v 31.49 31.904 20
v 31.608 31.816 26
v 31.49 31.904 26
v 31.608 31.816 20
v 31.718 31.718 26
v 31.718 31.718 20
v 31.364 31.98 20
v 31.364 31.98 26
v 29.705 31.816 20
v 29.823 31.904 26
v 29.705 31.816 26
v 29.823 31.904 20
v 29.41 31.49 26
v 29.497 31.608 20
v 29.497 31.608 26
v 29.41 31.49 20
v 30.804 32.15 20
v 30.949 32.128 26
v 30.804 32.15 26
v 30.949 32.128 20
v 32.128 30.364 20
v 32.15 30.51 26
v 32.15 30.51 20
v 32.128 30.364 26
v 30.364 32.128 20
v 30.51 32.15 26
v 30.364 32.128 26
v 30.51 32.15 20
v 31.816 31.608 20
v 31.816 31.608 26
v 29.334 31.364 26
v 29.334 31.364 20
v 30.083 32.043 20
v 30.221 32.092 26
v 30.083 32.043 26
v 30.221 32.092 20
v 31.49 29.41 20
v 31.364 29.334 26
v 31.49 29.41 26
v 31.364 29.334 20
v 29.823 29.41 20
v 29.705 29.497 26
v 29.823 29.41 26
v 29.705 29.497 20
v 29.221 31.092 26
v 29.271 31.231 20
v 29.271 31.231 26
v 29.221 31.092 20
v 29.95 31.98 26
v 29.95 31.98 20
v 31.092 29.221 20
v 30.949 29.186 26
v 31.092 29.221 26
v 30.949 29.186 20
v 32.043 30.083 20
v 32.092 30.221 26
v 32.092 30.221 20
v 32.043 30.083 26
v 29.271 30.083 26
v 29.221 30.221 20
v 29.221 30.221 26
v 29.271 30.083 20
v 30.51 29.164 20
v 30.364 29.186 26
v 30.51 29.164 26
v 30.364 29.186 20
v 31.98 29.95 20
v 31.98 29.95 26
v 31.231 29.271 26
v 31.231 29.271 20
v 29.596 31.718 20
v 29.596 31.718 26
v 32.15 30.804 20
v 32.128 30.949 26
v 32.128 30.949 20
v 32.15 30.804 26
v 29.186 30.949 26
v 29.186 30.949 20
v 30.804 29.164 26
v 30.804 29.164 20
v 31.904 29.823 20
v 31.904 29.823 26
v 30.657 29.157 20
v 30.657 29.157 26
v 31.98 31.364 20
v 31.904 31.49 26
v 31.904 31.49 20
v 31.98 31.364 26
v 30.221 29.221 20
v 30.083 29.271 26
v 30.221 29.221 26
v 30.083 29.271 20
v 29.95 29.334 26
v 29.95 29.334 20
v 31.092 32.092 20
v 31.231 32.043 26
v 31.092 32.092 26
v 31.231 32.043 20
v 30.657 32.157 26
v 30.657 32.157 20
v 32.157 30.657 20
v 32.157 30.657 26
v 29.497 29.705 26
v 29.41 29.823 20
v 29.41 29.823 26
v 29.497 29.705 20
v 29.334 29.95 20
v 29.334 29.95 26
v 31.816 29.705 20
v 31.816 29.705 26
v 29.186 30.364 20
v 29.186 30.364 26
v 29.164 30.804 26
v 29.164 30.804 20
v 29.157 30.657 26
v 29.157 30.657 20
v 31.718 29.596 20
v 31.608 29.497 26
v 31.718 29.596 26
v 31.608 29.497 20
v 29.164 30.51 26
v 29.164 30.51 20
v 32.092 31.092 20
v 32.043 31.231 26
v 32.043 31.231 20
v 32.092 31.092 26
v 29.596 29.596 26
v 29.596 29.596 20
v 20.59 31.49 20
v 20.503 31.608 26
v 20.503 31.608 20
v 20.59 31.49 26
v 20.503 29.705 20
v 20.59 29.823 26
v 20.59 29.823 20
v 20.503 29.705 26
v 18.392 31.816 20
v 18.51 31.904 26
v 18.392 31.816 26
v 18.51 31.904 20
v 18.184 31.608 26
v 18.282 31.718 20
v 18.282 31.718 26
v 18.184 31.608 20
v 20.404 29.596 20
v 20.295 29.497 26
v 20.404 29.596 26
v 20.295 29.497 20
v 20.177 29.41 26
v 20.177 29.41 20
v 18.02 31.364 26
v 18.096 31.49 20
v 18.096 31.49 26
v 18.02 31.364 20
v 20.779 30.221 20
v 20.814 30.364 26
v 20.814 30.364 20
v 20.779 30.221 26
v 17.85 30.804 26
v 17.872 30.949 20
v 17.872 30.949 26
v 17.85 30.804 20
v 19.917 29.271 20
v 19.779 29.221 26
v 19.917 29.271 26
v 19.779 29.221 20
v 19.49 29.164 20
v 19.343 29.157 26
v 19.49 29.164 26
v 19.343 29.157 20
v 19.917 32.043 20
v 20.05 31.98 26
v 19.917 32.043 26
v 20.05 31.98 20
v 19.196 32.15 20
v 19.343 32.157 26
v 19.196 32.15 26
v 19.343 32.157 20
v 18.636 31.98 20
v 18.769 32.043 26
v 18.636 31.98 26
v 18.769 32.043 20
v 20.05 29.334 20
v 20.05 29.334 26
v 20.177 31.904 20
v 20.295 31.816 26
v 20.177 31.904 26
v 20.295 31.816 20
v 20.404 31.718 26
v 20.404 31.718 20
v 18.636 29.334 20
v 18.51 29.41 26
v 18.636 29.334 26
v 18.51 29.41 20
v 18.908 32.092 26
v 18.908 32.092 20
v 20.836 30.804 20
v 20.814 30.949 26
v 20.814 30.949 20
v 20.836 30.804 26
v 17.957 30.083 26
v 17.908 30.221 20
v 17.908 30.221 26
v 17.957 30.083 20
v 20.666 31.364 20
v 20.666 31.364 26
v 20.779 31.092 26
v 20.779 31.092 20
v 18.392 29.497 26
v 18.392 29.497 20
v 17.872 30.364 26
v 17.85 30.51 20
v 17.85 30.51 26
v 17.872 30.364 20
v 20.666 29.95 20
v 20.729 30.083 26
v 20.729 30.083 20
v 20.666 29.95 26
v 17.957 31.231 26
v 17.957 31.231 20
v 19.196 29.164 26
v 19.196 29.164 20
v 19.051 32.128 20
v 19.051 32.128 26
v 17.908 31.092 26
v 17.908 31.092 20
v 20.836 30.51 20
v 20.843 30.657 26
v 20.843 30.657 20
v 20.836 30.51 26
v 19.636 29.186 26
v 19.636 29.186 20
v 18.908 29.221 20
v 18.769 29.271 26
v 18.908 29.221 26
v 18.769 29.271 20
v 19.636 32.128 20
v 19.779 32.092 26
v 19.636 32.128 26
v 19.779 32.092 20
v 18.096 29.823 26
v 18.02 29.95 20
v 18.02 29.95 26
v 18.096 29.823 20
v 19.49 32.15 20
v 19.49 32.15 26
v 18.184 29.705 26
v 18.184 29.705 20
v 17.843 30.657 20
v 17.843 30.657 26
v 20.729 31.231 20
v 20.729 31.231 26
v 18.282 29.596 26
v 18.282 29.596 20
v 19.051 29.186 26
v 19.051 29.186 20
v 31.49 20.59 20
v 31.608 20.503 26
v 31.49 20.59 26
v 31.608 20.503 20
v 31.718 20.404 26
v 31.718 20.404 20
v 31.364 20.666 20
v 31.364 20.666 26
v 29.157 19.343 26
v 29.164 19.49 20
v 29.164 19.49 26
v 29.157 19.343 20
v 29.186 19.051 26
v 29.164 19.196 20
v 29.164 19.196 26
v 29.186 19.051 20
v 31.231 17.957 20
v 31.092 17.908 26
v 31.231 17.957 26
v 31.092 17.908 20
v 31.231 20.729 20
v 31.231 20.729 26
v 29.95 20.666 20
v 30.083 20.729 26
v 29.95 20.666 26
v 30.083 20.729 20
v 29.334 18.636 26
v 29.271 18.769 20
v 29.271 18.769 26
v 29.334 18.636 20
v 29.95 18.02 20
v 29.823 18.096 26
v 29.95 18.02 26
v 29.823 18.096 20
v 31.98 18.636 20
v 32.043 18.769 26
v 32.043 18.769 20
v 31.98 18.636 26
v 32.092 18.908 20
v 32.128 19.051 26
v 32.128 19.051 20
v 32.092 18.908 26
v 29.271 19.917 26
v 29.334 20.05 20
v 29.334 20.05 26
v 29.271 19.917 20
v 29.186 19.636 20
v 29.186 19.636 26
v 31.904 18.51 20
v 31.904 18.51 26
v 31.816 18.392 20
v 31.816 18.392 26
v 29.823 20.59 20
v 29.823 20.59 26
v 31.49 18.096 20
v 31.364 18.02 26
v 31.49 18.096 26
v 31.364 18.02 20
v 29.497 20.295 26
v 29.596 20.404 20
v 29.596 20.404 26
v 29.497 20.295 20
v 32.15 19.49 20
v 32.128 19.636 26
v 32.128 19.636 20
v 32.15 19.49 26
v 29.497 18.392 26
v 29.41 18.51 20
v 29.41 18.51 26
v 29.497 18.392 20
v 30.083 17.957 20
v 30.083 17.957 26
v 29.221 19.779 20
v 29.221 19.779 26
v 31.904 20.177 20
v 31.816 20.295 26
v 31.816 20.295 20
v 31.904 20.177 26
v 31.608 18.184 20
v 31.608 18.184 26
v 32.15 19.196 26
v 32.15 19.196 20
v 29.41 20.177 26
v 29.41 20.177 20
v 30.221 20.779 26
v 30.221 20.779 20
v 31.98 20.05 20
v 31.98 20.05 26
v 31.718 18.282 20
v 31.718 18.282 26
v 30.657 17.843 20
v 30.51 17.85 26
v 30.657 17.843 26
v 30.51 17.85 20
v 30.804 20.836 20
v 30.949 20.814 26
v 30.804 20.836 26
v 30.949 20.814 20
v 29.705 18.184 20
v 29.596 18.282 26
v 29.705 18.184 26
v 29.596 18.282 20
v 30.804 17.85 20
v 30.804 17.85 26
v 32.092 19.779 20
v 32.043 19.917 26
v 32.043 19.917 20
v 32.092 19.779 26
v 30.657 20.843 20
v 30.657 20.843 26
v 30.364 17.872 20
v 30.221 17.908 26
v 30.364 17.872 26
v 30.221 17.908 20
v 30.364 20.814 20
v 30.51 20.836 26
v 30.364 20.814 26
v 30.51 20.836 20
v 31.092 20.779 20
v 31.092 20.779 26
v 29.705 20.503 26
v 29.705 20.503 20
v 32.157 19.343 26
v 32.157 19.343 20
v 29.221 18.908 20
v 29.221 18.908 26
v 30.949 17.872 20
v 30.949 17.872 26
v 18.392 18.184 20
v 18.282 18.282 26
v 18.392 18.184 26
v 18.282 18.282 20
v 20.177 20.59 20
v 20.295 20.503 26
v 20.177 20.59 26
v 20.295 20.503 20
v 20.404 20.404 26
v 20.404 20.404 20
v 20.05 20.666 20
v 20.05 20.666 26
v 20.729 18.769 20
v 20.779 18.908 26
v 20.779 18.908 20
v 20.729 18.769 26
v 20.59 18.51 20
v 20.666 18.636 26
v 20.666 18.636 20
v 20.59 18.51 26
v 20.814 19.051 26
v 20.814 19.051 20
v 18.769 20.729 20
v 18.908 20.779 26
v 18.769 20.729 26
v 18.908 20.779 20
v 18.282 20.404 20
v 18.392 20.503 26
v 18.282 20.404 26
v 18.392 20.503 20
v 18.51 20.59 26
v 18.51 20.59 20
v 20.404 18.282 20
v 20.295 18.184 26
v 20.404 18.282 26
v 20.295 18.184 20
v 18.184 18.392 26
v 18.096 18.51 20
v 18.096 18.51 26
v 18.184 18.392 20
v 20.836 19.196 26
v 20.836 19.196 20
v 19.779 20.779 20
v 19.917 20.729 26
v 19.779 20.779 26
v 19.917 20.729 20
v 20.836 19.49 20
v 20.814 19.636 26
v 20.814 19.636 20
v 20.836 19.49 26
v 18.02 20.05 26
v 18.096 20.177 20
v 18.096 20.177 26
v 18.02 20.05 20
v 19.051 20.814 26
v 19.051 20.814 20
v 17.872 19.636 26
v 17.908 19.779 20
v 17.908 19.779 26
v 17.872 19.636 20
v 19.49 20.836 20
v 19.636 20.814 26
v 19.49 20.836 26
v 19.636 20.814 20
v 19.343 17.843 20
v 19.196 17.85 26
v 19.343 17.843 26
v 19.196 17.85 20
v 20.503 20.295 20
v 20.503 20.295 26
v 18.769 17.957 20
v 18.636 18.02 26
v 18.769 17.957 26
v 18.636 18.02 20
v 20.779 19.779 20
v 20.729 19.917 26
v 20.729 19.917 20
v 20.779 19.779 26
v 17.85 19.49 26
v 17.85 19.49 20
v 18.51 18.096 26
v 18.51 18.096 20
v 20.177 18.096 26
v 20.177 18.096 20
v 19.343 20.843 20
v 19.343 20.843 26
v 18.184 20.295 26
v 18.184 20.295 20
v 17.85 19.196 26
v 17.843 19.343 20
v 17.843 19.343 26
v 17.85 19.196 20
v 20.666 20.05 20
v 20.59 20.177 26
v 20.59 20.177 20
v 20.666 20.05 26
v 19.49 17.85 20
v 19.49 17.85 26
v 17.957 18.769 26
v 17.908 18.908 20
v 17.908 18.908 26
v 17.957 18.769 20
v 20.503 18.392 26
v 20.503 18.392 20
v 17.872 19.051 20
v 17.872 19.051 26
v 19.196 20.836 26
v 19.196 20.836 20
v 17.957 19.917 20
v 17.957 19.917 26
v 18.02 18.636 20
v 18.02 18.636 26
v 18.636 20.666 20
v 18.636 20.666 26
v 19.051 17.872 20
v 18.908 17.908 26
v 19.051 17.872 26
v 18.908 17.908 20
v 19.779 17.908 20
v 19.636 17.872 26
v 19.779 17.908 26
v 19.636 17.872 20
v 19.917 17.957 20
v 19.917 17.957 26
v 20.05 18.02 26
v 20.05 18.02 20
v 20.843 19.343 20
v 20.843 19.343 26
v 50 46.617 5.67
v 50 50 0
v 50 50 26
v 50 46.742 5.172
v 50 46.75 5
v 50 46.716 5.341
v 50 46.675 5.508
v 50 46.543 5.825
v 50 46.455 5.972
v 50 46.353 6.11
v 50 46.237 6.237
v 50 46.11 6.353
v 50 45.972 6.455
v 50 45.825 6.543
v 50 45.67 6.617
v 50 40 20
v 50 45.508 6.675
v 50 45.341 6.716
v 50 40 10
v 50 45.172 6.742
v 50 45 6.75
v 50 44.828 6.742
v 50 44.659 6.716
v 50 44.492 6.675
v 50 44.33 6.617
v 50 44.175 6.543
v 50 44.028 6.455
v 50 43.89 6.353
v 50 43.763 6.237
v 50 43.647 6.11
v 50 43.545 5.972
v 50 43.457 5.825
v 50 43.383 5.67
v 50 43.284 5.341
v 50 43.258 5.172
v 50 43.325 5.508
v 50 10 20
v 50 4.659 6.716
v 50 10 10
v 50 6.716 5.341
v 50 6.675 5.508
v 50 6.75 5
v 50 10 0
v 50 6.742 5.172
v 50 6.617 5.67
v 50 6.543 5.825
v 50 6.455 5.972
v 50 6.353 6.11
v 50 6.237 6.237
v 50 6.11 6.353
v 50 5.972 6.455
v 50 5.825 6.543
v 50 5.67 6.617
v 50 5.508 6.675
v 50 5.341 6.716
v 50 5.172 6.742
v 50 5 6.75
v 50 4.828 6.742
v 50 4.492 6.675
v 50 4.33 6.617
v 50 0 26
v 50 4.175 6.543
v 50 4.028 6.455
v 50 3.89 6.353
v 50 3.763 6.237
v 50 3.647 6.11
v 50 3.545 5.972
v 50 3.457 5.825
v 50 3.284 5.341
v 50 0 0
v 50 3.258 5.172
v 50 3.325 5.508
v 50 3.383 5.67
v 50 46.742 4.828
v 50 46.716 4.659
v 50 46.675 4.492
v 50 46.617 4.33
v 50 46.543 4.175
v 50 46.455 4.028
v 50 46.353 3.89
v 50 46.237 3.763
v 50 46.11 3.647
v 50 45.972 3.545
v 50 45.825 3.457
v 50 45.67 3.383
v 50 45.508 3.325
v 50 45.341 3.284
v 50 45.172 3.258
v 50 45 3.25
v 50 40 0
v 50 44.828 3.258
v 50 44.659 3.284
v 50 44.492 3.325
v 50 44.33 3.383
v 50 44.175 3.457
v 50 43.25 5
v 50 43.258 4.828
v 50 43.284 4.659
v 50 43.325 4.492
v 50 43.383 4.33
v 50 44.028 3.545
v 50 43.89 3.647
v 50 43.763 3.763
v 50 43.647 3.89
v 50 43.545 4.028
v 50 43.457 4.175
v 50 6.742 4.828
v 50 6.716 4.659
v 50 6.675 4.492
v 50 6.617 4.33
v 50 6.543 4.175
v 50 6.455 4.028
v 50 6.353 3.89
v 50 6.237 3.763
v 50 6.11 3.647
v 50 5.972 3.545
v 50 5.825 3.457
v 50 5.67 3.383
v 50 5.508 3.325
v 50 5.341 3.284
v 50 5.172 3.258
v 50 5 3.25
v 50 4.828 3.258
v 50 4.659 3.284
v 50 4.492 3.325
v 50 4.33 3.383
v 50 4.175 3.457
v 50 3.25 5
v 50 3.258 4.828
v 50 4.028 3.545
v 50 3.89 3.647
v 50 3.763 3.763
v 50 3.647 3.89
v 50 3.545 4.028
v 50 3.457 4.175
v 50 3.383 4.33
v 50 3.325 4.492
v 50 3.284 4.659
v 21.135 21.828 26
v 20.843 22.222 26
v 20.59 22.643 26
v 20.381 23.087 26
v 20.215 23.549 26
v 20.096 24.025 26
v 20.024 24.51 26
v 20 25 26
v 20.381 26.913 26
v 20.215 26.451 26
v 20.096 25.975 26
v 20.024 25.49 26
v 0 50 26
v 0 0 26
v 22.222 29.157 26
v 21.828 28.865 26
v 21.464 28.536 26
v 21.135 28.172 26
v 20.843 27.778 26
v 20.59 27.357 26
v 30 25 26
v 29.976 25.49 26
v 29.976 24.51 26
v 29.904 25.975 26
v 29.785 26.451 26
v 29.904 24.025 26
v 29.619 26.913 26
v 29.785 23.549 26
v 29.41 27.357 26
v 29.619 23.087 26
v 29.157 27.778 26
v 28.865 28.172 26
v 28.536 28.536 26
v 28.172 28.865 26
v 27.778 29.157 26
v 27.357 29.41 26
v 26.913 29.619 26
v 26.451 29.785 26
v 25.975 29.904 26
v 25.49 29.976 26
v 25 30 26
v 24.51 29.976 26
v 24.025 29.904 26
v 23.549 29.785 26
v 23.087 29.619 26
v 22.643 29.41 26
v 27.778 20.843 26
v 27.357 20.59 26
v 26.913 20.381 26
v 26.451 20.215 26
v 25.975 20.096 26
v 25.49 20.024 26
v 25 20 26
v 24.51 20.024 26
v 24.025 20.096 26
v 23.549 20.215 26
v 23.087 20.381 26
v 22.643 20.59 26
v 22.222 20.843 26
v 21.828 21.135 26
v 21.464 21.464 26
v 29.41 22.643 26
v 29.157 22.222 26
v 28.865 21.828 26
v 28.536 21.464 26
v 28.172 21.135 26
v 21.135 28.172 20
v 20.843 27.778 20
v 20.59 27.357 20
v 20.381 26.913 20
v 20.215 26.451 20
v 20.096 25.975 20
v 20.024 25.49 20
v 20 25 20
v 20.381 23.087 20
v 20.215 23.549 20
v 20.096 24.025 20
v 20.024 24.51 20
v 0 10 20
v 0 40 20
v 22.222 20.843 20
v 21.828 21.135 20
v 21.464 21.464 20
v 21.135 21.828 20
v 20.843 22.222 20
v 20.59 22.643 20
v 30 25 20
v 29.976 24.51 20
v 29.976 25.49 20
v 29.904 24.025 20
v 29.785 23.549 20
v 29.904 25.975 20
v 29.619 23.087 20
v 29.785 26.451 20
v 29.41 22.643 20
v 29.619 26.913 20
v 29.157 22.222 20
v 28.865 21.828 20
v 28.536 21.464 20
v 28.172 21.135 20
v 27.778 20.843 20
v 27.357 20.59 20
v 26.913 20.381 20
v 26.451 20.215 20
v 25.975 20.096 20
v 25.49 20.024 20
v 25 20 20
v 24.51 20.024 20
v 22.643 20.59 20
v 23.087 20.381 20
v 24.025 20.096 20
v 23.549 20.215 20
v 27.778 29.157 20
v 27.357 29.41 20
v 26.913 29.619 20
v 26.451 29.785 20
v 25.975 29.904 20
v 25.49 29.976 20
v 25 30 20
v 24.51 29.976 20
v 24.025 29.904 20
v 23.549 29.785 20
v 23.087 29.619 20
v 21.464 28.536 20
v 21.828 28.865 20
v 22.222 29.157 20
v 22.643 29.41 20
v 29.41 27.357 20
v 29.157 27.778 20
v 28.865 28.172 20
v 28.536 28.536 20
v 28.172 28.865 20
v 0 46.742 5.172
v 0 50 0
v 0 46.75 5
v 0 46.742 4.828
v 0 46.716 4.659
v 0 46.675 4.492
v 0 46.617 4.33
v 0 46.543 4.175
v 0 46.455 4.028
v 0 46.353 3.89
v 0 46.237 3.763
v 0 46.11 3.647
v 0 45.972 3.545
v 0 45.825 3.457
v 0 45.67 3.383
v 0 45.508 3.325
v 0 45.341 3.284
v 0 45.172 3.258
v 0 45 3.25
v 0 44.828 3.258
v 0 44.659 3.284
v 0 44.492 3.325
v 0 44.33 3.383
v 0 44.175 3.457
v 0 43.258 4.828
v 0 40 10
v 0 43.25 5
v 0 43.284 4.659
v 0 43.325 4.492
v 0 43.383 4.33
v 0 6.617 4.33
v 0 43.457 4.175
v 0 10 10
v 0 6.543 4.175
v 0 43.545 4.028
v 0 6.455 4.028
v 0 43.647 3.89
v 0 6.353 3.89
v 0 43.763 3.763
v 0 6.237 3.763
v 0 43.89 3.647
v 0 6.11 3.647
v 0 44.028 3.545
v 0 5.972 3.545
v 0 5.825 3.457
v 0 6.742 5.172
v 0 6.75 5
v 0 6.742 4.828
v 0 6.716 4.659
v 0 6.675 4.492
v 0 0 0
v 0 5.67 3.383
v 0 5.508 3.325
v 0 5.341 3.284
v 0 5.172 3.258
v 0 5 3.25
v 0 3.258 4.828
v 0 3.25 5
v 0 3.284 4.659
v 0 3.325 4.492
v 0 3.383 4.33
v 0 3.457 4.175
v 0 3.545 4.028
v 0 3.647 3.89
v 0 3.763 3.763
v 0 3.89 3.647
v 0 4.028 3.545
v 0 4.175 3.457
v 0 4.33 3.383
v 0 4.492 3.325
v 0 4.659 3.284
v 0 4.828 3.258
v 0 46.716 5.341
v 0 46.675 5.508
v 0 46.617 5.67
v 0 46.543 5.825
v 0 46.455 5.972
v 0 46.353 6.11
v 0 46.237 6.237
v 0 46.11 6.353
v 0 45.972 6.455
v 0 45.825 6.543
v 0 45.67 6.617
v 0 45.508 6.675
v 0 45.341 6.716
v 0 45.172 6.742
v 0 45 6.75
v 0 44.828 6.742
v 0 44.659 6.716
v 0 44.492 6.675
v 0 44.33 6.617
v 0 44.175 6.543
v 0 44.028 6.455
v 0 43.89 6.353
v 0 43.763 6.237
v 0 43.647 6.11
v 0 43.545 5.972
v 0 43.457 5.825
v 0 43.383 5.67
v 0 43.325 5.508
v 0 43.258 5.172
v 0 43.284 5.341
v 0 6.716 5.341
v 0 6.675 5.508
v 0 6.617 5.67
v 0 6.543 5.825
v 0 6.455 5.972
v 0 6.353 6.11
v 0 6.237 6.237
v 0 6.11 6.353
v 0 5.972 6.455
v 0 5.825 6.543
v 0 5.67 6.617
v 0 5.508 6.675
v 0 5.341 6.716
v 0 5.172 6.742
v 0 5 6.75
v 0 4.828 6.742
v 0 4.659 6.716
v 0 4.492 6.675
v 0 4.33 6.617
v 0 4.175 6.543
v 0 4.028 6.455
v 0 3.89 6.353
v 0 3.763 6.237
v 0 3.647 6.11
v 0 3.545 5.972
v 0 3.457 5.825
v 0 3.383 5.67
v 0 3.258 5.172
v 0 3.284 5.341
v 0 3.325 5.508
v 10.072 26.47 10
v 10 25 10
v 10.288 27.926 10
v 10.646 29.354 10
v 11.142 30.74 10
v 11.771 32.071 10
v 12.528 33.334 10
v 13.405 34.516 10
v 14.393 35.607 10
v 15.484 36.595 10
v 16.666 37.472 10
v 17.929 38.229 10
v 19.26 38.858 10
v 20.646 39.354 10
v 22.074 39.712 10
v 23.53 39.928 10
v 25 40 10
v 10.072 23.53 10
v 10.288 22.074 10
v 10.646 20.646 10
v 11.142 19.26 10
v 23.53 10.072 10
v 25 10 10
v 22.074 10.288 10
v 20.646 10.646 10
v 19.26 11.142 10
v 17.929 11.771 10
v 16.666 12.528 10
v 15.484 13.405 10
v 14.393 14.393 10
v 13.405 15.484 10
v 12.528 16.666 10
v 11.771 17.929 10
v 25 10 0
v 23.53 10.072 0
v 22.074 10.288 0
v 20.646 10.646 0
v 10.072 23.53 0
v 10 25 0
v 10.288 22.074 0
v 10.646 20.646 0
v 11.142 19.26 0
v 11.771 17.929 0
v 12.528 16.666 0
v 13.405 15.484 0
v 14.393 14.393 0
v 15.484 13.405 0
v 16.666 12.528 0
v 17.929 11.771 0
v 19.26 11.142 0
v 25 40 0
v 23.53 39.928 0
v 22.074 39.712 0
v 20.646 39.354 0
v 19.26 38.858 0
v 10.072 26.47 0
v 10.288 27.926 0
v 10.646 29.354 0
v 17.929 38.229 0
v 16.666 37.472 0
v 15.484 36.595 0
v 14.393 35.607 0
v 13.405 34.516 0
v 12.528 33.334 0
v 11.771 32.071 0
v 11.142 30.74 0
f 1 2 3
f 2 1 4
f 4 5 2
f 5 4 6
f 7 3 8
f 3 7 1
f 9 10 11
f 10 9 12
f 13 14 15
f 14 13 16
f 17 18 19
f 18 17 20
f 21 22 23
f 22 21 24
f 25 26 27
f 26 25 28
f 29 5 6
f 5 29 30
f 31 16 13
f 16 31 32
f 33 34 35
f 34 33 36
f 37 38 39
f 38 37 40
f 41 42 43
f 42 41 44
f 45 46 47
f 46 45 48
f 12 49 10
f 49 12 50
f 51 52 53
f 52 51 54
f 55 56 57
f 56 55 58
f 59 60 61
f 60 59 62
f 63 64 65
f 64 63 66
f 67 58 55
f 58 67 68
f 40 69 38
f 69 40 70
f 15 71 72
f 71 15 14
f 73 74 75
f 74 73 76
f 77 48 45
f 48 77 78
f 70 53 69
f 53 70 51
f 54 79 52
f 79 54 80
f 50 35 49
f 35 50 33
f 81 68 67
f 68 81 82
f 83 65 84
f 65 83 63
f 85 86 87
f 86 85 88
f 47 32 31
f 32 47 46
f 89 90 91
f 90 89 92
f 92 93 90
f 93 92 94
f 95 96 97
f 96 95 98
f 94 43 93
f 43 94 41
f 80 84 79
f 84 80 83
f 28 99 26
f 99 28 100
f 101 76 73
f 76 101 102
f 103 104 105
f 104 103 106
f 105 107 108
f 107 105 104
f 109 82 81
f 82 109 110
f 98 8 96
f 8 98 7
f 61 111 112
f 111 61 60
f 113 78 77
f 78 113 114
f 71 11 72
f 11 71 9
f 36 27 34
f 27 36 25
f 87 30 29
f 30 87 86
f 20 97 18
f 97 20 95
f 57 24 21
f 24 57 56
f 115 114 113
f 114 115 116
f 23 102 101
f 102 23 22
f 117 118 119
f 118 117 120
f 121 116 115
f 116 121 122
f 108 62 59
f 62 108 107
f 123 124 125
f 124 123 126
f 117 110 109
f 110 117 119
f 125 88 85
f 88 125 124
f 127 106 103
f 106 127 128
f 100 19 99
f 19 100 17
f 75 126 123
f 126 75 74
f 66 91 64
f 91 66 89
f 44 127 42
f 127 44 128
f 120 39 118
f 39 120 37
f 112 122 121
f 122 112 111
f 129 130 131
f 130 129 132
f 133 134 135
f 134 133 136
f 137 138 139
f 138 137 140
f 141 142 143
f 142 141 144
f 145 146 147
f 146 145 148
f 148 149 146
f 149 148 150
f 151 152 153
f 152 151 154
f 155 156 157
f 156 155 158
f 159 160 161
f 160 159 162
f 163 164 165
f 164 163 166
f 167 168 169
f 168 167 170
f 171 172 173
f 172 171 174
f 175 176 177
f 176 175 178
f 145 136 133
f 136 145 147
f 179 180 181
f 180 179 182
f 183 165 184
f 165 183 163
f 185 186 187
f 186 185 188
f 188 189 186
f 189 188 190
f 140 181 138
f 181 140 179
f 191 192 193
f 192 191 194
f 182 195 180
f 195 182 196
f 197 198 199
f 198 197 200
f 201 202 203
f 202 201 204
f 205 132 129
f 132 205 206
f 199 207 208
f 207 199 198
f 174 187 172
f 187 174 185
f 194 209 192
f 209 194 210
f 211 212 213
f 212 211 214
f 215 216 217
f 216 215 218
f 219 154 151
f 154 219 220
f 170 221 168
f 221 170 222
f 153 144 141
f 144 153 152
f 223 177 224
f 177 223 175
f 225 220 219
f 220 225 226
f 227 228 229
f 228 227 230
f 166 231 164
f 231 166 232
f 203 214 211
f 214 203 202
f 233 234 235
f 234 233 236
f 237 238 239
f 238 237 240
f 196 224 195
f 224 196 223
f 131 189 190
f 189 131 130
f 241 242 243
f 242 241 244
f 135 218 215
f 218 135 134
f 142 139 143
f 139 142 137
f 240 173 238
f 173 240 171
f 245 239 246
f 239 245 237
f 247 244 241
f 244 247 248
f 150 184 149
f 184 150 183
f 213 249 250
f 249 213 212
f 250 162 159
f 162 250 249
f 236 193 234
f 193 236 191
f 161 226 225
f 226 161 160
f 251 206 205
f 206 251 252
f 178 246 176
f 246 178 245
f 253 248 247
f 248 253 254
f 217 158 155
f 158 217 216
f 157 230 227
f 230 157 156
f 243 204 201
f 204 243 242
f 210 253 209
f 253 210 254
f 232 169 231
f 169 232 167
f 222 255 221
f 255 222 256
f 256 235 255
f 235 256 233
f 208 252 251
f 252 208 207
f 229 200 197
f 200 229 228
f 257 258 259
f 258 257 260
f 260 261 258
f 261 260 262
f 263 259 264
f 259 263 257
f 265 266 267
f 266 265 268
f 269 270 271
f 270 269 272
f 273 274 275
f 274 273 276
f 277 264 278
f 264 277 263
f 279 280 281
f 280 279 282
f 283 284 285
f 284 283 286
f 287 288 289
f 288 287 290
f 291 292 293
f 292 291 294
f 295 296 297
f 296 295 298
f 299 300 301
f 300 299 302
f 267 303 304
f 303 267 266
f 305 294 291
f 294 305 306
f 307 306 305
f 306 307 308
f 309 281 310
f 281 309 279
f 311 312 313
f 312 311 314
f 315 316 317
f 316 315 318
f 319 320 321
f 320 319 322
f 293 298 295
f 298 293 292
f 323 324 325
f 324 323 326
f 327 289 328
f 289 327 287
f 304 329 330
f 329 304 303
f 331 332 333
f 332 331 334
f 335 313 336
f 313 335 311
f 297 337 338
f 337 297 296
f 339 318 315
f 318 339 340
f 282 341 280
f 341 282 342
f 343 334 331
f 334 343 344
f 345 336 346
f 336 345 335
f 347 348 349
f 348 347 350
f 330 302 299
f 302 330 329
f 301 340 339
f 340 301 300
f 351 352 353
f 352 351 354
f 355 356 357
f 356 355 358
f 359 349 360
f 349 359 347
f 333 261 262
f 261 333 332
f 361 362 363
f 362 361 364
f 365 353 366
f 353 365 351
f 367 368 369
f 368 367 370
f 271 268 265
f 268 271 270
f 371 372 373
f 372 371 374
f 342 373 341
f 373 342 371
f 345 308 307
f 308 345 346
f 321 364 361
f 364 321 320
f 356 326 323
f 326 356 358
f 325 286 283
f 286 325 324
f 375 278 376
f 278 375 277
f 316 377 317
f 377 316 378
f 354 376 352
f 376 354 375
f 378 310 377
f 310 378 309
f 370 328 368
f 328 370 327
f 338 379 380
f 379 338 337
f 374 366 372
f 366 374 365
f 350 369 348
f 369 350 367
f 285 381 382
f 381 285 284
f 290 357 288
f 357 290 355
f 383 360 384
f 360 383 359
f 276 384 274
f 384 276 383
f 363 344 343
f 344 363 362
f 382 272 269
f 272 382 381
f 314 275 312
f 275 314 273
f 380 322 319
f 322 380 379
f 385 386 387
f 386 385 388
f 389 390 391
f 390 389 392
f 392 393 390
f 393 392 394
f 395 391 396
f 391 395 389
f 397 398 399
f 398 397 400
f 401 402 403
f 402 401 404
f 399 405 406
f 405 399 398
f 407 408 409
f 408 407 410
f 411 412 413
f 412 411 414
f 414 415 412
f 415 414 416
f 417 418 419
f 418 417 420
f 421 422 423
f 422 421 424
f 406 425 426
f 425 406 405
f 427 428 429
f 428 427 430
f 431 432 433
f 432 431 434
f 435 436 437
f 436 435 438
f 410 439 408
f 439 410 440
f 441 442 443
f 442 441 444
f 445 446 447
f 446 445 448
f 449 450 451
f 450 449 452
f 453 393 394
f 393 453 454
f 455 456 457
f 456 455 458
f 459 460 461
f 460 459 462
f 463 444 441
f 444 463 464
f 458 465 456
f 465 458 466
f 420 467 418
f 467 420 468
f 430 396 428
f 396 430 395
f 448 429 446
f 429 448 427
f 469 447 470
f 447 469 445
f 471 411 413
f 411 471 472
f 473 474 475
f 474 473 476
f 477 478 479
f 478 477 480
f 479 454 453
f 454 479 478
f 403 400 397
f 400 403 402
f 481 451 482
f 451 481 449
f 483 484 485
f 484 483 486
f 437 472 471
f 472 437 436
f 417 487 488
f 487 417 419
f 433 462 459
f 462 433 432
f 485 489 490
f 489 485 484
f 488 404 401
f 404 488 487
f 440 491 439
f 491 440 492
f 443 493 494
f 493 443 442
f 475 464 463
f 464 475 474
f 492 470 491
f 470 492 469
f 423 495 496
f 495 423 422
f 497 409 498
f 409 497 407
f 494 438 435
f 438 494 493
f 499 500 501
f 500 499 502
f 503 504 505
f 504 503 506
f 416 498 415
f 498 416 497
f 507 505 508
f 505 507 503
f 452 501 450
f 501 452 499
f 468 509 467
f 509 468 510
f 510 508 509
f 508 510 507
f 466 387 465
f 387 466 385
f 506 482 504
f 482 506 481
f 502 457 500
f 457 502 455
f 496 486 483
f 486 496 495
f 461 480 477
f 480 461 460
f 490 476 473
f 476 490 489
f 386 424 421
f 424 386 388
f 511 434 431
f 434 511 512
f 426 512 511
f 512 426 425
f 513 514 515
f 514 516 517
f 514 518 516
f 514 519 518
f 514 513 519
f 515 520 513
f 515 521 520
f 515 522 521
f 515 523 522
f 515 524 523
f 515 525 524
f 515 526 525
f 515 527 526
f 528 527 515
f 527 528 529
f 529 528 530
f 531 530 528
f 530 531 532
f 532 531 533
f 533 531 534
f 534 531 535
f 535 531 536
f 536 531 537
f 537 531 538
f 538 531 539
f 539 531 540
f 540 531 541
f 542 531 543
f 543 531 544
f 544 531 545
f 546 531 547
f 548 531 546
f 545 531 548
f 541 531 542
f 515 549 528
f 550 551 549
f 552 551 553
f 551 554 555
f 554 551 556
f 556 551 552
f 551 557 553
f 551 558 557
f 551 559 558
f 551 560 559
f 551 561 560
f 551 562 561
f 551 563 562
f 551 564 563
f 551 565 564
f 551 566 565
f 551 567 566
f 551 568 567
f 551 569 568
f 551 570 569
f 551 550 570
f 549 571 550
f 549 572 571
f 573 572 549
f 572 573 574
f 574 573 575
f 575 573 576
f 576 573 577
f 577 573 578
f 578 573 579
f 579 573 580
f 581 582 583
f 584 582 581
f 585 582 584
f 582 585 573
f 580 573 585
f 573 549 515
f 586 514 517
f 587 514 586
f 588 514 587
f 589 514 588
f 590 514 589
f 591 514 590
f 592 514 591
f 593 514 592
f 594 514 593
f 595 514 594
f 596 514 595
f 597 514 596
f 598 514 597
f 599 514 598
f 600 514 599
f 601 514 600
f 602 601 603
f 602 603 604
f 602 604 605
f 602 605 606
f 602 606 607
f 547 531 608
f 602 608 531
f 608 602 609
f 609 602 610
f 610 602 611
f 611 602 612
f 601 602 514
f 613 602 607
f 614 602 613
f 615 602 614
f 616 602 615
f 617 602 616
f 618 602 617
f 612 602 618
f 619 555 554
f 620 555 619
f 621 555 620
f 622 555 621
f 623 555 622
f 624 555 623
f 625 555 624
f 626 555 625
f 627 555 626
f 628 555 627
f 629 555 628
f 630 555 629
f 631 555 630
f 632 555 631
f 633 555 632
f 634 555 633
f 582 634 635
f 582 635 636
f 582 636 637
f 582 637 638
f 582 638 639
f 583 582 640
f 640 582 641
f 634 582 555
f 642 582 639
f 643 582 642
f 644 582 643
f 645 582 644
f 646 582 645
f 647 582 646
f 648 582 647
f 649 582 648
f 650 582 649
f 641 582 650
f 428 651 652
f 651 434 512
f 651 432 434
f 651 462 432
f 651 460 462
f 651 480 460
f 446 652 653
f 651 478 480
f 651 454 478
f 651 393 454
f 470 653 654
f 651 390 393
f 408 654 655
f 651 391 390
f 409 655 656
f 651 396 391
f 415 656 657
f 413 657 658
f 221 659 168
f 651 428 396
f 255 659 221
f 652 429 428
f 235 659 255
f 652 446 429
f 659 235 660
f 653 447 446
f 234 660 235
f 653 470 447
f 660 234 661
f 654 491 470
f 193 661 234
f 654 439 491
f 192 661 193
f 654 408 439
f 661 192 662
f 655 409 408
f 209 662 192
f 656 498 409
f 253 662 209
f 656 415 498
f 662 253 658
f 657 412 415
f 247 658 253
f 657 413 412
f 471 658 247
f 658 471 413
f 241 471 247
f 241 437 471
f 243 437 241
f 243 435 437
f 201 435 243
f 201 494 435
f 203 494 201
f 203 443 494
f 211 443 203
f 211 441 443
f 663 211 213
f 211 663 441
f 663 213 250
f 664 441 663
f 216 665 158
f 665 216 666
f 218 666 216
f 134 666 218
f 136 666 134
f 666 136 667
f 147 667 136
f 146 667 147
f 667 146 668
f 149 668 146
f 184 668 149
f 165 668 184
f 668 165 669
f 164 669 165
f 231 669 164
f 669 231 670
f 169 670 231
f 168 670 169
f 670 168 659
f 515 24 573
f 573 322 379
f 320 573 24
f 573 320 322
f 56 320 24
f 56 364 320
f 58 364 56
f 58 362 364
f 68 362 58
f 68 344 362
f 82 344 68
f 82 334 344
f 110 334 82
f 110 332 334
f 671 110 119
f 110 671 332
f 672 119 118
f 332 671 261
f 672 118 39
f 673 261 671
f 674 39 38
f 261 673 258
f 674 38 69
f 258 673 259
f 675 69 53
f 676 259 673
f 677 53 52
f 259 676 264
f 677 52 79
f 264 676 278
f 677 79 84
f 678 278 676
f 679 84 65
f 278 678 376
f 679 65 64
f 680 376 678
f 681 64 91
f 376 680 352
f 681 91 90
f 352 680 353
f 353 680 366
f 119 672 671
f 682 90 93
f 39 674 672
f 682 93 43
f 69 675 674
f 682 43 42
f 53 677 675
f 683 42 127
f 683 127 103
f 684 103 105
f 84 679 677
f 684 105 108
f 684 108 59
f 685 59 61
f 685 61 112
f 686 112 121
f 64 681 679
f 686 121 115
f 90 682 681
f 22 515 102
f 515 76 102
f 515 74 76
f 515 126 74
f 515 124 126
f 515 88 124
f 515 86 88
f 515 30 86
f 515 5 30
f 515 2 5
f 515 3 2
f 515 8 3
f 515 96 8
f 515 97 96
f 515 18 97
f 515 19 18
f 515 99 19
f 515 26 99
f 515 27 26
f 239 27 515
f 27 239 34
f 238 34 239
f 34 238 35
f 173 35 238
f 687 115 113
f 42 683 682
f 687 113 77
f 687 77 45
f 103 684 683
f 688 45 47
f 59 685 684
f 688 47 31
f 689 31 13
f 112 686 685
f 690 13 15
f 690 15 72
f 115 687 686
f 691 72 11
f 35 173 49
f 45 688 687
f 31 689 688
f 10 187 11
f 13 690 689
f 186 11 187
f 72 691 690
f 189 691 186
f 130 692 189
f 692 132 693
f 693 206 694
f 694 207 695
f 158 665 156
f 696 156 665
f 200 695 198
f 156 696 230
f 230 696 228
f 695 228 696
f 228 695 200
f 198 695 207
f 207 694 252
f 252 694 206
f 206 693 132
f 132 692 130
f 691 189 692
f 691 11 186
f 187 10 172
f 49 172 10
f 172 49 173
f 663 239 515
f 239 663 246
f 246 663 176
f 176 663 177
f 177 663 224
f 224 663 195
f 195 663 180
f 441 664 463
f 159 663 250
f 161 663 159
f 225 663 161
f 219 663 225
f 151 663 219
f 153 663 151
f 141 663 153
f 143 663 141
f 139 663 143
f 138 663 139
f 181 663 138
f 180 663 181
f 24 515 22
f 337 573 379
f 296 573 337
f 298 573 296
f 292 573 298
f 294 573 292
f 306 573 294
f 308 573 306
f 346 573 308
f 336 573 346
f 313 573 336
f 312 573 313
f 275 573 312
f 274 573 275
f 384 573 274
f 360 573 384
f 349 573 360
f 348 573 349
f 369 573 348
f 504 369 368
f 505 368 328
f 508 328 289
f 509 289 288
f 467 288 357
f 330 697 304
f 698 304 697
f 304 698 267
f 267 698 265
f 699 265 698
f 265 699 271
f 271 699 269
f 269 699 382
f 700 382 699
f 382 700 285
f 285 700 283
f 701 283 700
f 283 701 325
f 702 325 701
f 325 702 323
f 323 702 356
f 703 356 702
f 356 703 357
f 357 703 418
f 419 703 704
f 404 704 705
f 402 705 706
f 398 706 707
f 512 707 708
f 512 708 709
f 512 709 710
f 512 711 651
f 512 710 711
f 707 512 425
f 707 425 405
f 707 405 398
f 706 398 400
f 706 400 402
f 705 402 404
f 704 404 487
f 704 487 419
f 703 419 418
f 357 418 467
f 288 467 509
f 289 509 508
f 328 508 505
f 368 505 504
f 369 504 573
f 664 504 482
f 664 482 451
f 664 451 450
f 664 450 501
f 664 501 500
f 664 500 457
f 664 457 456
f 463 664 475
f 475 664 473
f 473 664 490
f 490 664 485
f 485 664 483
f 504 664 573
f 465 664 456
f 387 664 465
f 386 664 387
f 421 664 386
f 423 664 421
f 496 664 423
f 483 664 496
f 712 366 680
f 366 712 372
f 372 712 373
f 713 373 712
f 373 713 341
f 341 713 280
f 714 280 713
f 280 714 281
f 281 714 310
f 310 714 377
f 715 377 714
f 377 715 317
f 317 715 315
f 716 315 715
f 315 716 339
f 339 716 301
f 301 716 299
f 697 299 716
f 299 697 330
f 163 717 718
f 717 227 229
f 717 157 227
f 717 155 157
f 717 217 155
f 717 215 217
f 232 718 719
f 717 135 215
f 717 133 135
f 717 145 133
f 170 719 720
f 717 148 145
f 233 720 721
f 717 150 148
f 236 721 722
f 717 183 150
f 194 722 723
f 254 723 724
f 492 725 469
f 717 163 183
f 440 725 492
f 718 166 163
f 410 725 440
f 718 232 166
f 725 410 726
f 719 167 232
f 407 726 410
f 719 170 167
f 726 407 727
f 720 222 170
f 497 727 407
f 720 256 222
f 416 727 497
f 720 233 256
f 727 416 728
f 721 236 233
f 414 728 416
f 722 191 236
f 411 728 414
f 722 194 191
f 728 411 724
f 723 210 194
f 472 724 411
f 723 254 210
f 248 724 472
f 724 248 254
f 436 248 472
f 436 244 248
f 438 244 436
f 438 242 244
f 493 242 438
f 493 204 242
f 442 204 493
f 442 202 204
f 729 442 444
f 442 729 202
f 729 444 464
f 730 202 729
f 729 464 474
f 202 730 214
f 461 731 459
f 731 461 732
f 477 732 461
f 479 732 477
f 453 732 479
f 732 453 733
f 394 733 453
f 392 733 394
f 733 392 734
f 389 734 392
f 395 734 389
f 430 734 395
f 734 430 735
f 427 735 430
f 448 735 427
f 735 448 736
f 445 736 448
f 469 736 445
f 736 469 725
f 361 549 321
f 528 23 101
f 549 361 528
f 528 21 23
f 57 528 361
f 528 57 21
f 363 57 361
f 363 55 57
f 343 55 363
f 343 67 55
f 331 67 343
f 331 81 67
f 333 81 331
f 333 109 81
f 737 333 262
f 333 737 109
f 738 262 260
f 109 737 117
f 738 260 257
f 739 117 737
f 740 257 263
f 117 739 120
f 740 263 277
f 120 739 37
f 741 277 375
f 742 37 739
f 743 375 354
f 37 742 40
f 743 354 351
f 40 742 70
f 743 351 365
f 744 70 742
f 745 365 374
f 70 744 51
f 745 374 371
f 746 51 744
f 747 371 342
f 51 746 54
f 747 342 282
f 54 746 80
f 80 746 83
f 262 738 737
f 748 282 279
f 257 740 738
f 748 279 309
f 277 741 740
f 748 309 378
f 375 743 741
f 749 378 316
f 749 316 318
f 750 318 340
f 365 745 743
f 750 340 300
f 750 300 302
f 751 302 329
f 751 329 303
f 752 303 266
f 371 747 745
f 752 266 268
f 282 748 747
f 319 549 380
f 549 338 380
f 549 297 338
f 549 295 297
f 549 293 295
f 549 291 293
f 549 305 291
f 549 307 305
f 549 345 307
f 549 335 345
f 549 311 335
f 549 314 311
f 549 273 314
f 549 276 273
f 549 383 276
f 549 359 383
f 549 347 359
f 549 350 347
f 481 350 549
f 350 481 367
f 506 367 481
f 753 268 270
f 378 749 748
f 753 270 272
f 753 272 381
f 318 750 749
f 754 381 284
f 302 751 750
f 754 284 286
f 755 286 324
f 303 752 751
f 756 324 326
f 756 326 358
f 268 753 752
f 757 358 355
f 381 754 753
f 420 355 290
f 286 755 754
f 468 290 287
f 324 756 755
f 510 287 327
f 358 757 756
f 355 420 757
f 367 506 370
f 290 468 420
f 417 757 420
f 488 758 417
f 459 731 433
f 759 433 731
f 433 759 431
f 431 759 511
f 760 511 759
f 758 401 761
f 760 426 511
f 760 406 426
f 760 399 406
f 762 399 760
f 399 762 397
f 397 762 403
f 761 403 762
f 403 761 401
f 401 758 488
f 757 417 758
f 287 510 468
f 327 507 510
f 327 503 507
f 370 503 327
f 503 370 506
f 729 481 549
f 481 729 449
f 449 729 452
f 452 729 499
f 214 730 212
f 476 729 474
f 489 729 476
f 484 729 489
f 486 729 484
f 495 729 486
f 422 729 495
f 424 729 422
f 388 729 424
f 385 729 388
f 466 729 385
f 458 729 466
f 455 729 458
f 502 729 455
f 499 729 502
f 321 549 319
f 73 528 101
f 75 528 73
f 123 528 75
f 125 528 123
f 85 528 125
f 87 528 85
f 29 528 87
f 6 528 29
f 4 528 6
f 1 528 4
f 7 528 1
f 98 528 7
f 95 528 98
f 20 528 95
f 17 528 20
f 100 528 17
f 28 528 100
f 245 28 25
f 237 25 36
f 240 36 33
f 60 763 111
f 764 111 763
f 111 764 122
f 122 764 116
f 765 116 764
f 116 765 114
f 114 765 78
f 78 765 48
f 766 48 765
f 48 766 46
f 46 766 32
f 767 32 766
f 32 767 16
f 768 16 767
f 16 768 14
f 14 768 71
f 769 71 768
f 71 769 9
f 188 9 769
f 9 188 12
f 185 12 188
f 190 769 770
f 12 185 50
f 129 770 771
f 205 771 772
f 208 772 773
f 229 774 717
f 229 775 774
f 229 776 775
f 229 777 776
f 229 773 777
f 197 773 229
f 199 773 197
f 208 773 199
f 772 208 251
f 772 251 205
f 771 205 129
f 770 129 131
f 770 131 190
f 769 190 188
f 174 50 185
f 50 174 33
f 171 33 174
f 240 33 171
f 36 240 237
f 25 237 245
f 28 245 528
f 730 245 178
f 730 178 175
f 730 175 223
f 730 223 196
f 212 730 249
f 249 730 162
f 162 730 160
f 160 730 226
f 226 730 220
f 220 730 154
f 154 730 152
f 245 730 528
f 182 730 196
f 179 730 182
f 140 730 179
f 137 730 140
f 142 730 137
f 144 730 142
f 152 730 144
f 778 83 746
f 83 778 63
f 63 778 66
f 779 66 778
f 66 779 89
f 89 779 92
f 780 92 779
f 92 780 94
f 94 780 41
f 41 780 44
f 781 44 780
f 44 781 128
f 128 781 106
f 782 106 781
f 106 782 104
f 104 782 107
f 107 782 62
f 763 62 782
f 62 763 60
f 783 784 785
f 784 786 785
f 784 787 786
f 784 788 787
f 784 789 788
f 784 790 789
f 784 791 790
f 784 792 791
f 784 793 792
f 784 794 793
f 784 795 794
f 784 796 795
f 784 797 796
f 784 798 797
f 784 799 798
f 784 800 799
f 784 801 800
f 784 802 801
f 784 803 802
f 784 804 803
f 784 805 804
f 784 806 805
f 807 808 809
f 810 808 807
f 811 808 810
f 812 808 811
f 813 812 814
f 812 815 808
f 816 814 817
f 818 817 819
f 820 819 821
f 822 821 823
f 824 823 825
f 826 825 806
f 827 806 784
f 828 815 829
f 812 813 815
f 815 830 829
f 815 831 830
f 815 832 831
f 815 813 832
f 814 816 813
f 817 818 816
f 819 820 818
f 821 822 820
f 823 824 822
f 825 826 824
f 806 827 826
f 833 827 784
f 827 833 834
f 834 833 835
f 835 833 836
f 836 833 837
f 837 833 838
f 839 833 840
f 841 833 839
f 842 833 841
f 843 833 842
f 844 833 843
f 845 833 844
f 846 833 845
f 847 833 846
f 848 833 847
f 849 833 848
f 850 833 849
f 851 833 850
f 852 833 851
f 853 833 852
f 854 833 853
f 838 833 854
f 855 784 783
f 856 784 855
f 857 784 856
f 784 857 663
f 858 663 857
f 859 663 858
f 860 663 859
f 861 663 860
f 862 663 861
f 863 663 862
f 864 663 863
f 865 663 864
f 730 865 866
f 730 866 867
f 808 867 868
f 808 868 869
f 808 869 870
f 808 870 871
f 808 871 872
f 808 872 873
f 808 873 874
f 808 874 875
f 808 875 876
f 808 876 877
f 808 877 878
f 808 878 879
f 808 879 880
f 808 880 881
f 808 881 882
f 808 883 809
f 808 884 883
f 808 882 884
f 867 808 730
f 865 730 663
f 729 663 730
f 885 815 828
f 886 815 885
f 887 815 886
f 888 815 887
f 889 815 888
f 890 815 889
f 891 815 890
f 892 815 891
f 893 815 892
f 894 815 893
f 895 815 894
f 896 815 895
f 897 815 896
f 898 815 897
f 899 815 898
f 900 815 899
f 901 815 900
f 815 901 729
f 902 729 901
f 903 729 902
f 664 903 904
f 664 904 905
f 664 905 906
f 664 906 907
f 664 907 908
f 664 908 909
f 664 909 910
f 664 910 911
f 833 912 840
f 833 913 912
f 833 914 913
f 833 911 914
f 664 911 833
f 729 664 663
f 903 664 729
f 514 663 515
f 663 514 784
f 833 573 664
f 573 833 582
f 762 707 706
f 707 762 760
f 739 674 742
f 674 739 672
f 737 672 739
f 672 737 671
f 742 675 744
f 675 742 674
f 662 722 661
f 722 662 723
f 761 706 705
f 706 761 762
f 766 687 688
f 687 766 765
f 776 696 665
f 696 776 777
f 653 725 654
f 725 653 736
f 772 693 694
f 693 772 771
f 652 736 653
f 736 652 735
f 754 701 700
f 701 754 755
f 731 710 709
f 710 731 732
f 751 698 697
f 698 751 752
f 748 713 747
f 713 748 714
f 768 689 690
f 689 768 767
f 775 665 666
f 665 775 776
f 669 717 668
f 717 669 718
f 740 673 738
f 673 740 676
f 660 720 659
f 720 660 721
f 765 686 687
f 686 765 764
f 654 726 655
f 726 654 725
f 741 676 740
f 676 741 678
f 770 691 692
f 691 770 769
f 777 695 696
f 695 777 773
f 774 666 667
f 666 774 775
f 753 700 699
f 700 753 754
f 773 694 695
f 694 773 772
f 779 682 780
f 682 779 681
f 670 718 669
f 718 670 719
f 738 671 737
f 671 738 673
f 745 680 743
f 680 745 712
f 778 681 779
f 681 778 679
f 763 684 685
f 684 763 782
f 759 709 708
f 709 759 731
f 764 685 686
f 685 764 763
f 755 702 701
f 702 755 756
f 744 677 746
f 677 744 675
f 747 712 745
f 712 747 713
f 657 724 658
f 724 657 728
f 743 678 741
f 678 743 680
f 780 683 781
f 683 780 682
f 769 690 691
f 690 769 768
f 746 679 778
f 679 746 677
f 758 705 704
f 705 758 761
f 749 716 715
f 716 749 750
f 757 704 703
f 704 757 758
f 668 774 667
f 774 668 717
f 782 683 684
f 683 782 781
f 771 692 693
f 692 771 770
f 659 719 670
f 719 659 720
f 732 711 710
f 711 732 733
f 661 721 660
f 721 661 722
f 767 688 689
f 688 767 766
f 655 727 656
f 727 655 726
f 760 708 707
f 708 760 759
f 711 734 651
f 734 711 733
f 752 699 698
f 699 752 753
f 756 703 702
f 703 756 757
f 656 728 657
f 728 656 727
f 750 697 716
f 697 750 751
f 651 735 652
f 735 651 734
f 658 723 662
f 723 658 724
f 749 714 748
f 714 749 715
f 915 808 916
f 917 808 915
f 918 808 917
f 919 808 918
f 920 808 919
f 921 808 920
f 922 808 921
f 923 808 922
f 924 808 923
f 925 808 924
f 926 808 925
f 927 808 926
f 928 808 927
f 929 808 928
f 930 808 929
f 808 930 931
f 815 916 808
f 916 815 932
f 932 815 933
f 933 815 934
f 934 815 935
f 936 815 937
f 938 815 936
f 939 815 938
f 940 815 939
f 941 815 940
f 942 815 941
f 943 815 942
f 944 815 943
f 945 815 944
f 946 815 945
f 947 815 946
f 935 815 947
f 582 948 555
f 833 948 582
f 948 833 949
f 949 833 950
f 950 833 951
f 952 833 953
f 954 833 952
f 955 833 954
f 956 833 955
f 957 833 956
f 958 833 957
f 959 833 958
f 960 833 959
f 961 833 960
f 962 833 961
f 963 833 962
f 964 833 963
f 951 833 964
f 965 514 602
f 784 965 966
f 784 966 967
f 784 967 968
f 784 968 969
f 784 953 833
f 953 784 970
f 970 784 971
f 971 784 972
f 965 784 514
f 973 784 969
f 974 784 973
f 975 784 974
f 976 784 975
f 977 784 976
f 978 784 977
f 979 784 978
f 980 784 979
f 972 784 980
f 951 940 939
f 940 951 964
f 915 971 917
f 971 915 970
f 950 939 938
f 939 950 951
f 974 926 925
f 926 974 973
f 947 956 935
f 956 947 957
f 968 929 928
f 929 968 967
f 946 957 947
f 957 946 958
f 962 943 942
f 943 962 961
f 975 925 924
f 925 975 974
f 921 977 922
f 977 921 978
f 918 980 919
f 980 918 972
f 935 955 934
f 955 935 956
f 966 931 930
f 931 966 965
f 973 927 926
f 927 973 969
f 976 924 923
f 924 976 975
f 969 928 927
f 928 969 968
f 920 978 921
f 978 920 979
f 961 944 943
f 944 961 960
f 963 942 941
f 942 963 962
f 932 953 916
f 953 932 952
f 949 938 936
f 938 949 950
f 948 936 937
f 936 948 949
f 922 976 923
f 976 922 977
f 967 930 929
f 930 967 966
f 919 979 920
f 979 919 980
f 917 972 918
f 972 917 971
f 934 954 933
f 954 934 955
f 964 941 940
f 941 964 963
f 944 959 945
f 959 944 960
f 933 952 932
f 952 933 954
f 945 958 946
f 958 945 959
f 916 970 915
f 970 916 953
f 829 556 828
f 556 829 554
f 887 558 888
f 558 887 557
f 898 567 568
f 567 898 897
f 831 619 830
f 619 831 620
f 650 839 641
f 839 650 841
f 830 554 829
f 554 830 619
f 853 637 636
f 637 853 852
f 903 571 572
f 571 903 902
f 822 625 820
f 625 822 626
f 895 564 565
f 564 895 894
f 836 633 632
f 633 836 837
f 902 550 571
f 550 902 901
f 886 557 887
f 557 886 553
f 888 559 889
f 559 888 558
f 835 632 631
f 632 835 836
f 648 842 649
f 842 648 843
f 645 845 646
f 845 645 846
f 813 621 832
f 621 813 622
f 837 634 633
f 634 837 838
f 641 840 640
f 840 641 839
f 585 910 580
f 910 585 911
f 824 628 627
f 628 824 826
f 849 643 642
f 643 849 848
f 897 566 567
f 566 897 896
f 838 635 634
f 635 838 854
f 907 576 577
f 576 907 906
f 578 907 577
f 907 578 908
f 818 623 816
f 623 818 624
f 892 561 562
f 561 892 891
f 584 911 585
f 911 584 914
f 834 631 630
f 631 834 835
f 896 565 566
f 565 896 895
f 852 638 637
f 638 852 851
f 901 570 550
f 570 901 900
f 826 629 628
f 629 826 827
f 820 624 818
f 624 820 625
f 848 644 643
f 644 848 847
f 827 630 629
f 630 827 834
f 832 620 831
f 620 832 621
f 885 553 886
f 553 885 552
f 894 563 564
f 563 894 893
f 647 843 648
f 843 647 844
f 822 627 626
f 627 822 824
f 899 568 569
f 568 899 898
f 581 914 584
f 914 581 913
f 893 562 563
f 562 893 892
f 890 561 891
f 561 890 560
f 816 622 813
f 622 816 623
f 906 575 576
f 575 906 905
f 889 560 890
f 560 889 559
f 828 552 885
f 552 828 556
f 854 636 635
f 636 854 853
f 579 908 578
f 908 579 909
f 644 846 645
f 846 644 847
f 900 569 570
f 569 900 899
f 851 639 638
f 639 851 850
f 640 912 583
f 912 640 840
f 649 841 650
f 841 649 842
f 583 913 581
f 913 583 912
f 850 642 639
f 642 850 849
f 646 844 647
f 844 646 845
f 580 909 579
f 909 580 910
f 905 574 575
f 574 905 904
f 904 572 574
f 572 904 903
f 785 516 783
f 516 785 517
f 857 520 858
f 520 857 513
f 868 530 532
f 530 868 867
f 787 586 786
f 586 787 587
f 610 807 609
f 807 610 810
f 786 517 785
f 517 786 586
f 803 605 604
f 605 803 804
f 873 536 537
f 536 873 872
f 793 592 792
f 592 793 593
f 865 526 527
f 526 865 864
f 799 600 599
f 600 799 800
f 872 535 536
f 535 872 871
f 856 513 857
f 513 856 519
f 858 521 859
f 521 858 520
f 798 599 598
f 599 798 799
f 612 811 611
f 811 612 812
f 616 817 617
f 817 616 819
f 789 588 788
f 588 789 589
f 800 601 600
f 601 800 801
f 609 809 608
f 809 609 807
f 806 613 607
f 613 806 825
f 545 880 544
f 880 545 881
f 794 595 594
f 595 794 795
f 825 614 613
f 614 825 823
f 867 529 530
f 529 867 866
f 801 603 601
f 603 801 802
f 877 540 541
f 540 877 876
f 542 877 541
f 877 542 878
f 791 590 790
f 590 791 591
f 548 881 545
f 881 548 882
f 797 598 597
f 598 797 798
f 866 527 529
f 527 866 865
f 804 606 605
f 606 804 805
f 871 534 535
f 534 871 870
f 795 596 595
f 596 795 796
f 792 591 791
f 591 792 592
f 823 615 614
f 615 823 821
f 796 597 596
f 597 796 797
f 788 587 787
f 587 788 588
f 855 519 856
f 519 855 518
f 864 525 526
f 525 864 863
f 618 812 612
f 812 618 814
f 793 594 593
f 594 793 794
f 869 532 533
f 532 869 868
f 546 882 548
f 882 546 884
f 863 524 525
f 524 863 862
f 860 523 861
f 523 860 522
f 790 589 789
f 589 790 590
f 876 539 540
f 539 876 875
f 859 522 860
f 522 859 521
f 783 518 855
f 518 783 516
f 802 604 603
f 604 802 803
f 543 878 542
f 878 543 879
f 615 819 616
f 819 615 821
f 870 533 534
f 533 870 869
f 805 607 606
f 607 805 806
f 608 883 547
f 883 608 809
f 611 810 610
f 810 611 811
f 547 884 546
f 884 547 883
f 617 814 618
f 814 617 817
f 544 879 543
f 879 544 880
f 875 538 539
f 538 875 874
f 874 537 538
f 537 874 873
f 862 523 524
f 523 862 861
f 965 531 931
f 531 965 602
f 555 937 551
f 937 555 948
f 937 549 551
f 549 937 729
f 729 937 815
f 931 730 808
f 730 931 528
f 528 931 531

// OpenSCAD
// Drone RC motor mount
// with guide holes
$fn=64;

inner_d = 30;
outer_d = 50;
height = 10;
motor_lager_d = 10;

guide_d = 3.5;

difference()
{
    cube([outer_d, outer_d, height]);
    translate([outer_d/2, outer_d/2, -1])
    cylinder(d=inner_d, h=height*2, center=false);

    translate([-10,height/2,height/2])
    rotate([0,90,0])
    cylinder(d=guide_d, h=outer_d*2, center=false);

    translate([-10,outer_d - height/2,height/2])
    rotate([0,90,0])
    cylinder(d=guide_d, h=outer_d*2, center=false);

    translate([outer_d/2,height,-1])
    cube([inner_d, inner_d, height+2]);
}


translate([0,0,height])
cube([outer_d, height, height]);
translate([0,outer_d-height,height])
cube([outer_d, height, height]);

difference()
{
    translate([0,0,height*2])
    cube([outer_d, outer_d, height-4]);

    translate([outer_d/2, outer_d/2, 1.5*height])
    cylinder(d=motor_lager_d, h=height*2, center=false);

    translate([outer_d/2, outer_d/2, 1.5*height])
    rotate([0,0,45])
    {
        translate([8, 0, 0])
        cylinder(d=3, h=height*2, center=false);

        translate([0, 8, 0])
        cylinder(d=3, h=height*2, center=false);

        translate([0, -8, 0])
        cylinder(d=3, h=height*2, center=false);

        translate([-8, 0, 0])
        cylinder(d=3, h=height*2, center=false);
    }
}
